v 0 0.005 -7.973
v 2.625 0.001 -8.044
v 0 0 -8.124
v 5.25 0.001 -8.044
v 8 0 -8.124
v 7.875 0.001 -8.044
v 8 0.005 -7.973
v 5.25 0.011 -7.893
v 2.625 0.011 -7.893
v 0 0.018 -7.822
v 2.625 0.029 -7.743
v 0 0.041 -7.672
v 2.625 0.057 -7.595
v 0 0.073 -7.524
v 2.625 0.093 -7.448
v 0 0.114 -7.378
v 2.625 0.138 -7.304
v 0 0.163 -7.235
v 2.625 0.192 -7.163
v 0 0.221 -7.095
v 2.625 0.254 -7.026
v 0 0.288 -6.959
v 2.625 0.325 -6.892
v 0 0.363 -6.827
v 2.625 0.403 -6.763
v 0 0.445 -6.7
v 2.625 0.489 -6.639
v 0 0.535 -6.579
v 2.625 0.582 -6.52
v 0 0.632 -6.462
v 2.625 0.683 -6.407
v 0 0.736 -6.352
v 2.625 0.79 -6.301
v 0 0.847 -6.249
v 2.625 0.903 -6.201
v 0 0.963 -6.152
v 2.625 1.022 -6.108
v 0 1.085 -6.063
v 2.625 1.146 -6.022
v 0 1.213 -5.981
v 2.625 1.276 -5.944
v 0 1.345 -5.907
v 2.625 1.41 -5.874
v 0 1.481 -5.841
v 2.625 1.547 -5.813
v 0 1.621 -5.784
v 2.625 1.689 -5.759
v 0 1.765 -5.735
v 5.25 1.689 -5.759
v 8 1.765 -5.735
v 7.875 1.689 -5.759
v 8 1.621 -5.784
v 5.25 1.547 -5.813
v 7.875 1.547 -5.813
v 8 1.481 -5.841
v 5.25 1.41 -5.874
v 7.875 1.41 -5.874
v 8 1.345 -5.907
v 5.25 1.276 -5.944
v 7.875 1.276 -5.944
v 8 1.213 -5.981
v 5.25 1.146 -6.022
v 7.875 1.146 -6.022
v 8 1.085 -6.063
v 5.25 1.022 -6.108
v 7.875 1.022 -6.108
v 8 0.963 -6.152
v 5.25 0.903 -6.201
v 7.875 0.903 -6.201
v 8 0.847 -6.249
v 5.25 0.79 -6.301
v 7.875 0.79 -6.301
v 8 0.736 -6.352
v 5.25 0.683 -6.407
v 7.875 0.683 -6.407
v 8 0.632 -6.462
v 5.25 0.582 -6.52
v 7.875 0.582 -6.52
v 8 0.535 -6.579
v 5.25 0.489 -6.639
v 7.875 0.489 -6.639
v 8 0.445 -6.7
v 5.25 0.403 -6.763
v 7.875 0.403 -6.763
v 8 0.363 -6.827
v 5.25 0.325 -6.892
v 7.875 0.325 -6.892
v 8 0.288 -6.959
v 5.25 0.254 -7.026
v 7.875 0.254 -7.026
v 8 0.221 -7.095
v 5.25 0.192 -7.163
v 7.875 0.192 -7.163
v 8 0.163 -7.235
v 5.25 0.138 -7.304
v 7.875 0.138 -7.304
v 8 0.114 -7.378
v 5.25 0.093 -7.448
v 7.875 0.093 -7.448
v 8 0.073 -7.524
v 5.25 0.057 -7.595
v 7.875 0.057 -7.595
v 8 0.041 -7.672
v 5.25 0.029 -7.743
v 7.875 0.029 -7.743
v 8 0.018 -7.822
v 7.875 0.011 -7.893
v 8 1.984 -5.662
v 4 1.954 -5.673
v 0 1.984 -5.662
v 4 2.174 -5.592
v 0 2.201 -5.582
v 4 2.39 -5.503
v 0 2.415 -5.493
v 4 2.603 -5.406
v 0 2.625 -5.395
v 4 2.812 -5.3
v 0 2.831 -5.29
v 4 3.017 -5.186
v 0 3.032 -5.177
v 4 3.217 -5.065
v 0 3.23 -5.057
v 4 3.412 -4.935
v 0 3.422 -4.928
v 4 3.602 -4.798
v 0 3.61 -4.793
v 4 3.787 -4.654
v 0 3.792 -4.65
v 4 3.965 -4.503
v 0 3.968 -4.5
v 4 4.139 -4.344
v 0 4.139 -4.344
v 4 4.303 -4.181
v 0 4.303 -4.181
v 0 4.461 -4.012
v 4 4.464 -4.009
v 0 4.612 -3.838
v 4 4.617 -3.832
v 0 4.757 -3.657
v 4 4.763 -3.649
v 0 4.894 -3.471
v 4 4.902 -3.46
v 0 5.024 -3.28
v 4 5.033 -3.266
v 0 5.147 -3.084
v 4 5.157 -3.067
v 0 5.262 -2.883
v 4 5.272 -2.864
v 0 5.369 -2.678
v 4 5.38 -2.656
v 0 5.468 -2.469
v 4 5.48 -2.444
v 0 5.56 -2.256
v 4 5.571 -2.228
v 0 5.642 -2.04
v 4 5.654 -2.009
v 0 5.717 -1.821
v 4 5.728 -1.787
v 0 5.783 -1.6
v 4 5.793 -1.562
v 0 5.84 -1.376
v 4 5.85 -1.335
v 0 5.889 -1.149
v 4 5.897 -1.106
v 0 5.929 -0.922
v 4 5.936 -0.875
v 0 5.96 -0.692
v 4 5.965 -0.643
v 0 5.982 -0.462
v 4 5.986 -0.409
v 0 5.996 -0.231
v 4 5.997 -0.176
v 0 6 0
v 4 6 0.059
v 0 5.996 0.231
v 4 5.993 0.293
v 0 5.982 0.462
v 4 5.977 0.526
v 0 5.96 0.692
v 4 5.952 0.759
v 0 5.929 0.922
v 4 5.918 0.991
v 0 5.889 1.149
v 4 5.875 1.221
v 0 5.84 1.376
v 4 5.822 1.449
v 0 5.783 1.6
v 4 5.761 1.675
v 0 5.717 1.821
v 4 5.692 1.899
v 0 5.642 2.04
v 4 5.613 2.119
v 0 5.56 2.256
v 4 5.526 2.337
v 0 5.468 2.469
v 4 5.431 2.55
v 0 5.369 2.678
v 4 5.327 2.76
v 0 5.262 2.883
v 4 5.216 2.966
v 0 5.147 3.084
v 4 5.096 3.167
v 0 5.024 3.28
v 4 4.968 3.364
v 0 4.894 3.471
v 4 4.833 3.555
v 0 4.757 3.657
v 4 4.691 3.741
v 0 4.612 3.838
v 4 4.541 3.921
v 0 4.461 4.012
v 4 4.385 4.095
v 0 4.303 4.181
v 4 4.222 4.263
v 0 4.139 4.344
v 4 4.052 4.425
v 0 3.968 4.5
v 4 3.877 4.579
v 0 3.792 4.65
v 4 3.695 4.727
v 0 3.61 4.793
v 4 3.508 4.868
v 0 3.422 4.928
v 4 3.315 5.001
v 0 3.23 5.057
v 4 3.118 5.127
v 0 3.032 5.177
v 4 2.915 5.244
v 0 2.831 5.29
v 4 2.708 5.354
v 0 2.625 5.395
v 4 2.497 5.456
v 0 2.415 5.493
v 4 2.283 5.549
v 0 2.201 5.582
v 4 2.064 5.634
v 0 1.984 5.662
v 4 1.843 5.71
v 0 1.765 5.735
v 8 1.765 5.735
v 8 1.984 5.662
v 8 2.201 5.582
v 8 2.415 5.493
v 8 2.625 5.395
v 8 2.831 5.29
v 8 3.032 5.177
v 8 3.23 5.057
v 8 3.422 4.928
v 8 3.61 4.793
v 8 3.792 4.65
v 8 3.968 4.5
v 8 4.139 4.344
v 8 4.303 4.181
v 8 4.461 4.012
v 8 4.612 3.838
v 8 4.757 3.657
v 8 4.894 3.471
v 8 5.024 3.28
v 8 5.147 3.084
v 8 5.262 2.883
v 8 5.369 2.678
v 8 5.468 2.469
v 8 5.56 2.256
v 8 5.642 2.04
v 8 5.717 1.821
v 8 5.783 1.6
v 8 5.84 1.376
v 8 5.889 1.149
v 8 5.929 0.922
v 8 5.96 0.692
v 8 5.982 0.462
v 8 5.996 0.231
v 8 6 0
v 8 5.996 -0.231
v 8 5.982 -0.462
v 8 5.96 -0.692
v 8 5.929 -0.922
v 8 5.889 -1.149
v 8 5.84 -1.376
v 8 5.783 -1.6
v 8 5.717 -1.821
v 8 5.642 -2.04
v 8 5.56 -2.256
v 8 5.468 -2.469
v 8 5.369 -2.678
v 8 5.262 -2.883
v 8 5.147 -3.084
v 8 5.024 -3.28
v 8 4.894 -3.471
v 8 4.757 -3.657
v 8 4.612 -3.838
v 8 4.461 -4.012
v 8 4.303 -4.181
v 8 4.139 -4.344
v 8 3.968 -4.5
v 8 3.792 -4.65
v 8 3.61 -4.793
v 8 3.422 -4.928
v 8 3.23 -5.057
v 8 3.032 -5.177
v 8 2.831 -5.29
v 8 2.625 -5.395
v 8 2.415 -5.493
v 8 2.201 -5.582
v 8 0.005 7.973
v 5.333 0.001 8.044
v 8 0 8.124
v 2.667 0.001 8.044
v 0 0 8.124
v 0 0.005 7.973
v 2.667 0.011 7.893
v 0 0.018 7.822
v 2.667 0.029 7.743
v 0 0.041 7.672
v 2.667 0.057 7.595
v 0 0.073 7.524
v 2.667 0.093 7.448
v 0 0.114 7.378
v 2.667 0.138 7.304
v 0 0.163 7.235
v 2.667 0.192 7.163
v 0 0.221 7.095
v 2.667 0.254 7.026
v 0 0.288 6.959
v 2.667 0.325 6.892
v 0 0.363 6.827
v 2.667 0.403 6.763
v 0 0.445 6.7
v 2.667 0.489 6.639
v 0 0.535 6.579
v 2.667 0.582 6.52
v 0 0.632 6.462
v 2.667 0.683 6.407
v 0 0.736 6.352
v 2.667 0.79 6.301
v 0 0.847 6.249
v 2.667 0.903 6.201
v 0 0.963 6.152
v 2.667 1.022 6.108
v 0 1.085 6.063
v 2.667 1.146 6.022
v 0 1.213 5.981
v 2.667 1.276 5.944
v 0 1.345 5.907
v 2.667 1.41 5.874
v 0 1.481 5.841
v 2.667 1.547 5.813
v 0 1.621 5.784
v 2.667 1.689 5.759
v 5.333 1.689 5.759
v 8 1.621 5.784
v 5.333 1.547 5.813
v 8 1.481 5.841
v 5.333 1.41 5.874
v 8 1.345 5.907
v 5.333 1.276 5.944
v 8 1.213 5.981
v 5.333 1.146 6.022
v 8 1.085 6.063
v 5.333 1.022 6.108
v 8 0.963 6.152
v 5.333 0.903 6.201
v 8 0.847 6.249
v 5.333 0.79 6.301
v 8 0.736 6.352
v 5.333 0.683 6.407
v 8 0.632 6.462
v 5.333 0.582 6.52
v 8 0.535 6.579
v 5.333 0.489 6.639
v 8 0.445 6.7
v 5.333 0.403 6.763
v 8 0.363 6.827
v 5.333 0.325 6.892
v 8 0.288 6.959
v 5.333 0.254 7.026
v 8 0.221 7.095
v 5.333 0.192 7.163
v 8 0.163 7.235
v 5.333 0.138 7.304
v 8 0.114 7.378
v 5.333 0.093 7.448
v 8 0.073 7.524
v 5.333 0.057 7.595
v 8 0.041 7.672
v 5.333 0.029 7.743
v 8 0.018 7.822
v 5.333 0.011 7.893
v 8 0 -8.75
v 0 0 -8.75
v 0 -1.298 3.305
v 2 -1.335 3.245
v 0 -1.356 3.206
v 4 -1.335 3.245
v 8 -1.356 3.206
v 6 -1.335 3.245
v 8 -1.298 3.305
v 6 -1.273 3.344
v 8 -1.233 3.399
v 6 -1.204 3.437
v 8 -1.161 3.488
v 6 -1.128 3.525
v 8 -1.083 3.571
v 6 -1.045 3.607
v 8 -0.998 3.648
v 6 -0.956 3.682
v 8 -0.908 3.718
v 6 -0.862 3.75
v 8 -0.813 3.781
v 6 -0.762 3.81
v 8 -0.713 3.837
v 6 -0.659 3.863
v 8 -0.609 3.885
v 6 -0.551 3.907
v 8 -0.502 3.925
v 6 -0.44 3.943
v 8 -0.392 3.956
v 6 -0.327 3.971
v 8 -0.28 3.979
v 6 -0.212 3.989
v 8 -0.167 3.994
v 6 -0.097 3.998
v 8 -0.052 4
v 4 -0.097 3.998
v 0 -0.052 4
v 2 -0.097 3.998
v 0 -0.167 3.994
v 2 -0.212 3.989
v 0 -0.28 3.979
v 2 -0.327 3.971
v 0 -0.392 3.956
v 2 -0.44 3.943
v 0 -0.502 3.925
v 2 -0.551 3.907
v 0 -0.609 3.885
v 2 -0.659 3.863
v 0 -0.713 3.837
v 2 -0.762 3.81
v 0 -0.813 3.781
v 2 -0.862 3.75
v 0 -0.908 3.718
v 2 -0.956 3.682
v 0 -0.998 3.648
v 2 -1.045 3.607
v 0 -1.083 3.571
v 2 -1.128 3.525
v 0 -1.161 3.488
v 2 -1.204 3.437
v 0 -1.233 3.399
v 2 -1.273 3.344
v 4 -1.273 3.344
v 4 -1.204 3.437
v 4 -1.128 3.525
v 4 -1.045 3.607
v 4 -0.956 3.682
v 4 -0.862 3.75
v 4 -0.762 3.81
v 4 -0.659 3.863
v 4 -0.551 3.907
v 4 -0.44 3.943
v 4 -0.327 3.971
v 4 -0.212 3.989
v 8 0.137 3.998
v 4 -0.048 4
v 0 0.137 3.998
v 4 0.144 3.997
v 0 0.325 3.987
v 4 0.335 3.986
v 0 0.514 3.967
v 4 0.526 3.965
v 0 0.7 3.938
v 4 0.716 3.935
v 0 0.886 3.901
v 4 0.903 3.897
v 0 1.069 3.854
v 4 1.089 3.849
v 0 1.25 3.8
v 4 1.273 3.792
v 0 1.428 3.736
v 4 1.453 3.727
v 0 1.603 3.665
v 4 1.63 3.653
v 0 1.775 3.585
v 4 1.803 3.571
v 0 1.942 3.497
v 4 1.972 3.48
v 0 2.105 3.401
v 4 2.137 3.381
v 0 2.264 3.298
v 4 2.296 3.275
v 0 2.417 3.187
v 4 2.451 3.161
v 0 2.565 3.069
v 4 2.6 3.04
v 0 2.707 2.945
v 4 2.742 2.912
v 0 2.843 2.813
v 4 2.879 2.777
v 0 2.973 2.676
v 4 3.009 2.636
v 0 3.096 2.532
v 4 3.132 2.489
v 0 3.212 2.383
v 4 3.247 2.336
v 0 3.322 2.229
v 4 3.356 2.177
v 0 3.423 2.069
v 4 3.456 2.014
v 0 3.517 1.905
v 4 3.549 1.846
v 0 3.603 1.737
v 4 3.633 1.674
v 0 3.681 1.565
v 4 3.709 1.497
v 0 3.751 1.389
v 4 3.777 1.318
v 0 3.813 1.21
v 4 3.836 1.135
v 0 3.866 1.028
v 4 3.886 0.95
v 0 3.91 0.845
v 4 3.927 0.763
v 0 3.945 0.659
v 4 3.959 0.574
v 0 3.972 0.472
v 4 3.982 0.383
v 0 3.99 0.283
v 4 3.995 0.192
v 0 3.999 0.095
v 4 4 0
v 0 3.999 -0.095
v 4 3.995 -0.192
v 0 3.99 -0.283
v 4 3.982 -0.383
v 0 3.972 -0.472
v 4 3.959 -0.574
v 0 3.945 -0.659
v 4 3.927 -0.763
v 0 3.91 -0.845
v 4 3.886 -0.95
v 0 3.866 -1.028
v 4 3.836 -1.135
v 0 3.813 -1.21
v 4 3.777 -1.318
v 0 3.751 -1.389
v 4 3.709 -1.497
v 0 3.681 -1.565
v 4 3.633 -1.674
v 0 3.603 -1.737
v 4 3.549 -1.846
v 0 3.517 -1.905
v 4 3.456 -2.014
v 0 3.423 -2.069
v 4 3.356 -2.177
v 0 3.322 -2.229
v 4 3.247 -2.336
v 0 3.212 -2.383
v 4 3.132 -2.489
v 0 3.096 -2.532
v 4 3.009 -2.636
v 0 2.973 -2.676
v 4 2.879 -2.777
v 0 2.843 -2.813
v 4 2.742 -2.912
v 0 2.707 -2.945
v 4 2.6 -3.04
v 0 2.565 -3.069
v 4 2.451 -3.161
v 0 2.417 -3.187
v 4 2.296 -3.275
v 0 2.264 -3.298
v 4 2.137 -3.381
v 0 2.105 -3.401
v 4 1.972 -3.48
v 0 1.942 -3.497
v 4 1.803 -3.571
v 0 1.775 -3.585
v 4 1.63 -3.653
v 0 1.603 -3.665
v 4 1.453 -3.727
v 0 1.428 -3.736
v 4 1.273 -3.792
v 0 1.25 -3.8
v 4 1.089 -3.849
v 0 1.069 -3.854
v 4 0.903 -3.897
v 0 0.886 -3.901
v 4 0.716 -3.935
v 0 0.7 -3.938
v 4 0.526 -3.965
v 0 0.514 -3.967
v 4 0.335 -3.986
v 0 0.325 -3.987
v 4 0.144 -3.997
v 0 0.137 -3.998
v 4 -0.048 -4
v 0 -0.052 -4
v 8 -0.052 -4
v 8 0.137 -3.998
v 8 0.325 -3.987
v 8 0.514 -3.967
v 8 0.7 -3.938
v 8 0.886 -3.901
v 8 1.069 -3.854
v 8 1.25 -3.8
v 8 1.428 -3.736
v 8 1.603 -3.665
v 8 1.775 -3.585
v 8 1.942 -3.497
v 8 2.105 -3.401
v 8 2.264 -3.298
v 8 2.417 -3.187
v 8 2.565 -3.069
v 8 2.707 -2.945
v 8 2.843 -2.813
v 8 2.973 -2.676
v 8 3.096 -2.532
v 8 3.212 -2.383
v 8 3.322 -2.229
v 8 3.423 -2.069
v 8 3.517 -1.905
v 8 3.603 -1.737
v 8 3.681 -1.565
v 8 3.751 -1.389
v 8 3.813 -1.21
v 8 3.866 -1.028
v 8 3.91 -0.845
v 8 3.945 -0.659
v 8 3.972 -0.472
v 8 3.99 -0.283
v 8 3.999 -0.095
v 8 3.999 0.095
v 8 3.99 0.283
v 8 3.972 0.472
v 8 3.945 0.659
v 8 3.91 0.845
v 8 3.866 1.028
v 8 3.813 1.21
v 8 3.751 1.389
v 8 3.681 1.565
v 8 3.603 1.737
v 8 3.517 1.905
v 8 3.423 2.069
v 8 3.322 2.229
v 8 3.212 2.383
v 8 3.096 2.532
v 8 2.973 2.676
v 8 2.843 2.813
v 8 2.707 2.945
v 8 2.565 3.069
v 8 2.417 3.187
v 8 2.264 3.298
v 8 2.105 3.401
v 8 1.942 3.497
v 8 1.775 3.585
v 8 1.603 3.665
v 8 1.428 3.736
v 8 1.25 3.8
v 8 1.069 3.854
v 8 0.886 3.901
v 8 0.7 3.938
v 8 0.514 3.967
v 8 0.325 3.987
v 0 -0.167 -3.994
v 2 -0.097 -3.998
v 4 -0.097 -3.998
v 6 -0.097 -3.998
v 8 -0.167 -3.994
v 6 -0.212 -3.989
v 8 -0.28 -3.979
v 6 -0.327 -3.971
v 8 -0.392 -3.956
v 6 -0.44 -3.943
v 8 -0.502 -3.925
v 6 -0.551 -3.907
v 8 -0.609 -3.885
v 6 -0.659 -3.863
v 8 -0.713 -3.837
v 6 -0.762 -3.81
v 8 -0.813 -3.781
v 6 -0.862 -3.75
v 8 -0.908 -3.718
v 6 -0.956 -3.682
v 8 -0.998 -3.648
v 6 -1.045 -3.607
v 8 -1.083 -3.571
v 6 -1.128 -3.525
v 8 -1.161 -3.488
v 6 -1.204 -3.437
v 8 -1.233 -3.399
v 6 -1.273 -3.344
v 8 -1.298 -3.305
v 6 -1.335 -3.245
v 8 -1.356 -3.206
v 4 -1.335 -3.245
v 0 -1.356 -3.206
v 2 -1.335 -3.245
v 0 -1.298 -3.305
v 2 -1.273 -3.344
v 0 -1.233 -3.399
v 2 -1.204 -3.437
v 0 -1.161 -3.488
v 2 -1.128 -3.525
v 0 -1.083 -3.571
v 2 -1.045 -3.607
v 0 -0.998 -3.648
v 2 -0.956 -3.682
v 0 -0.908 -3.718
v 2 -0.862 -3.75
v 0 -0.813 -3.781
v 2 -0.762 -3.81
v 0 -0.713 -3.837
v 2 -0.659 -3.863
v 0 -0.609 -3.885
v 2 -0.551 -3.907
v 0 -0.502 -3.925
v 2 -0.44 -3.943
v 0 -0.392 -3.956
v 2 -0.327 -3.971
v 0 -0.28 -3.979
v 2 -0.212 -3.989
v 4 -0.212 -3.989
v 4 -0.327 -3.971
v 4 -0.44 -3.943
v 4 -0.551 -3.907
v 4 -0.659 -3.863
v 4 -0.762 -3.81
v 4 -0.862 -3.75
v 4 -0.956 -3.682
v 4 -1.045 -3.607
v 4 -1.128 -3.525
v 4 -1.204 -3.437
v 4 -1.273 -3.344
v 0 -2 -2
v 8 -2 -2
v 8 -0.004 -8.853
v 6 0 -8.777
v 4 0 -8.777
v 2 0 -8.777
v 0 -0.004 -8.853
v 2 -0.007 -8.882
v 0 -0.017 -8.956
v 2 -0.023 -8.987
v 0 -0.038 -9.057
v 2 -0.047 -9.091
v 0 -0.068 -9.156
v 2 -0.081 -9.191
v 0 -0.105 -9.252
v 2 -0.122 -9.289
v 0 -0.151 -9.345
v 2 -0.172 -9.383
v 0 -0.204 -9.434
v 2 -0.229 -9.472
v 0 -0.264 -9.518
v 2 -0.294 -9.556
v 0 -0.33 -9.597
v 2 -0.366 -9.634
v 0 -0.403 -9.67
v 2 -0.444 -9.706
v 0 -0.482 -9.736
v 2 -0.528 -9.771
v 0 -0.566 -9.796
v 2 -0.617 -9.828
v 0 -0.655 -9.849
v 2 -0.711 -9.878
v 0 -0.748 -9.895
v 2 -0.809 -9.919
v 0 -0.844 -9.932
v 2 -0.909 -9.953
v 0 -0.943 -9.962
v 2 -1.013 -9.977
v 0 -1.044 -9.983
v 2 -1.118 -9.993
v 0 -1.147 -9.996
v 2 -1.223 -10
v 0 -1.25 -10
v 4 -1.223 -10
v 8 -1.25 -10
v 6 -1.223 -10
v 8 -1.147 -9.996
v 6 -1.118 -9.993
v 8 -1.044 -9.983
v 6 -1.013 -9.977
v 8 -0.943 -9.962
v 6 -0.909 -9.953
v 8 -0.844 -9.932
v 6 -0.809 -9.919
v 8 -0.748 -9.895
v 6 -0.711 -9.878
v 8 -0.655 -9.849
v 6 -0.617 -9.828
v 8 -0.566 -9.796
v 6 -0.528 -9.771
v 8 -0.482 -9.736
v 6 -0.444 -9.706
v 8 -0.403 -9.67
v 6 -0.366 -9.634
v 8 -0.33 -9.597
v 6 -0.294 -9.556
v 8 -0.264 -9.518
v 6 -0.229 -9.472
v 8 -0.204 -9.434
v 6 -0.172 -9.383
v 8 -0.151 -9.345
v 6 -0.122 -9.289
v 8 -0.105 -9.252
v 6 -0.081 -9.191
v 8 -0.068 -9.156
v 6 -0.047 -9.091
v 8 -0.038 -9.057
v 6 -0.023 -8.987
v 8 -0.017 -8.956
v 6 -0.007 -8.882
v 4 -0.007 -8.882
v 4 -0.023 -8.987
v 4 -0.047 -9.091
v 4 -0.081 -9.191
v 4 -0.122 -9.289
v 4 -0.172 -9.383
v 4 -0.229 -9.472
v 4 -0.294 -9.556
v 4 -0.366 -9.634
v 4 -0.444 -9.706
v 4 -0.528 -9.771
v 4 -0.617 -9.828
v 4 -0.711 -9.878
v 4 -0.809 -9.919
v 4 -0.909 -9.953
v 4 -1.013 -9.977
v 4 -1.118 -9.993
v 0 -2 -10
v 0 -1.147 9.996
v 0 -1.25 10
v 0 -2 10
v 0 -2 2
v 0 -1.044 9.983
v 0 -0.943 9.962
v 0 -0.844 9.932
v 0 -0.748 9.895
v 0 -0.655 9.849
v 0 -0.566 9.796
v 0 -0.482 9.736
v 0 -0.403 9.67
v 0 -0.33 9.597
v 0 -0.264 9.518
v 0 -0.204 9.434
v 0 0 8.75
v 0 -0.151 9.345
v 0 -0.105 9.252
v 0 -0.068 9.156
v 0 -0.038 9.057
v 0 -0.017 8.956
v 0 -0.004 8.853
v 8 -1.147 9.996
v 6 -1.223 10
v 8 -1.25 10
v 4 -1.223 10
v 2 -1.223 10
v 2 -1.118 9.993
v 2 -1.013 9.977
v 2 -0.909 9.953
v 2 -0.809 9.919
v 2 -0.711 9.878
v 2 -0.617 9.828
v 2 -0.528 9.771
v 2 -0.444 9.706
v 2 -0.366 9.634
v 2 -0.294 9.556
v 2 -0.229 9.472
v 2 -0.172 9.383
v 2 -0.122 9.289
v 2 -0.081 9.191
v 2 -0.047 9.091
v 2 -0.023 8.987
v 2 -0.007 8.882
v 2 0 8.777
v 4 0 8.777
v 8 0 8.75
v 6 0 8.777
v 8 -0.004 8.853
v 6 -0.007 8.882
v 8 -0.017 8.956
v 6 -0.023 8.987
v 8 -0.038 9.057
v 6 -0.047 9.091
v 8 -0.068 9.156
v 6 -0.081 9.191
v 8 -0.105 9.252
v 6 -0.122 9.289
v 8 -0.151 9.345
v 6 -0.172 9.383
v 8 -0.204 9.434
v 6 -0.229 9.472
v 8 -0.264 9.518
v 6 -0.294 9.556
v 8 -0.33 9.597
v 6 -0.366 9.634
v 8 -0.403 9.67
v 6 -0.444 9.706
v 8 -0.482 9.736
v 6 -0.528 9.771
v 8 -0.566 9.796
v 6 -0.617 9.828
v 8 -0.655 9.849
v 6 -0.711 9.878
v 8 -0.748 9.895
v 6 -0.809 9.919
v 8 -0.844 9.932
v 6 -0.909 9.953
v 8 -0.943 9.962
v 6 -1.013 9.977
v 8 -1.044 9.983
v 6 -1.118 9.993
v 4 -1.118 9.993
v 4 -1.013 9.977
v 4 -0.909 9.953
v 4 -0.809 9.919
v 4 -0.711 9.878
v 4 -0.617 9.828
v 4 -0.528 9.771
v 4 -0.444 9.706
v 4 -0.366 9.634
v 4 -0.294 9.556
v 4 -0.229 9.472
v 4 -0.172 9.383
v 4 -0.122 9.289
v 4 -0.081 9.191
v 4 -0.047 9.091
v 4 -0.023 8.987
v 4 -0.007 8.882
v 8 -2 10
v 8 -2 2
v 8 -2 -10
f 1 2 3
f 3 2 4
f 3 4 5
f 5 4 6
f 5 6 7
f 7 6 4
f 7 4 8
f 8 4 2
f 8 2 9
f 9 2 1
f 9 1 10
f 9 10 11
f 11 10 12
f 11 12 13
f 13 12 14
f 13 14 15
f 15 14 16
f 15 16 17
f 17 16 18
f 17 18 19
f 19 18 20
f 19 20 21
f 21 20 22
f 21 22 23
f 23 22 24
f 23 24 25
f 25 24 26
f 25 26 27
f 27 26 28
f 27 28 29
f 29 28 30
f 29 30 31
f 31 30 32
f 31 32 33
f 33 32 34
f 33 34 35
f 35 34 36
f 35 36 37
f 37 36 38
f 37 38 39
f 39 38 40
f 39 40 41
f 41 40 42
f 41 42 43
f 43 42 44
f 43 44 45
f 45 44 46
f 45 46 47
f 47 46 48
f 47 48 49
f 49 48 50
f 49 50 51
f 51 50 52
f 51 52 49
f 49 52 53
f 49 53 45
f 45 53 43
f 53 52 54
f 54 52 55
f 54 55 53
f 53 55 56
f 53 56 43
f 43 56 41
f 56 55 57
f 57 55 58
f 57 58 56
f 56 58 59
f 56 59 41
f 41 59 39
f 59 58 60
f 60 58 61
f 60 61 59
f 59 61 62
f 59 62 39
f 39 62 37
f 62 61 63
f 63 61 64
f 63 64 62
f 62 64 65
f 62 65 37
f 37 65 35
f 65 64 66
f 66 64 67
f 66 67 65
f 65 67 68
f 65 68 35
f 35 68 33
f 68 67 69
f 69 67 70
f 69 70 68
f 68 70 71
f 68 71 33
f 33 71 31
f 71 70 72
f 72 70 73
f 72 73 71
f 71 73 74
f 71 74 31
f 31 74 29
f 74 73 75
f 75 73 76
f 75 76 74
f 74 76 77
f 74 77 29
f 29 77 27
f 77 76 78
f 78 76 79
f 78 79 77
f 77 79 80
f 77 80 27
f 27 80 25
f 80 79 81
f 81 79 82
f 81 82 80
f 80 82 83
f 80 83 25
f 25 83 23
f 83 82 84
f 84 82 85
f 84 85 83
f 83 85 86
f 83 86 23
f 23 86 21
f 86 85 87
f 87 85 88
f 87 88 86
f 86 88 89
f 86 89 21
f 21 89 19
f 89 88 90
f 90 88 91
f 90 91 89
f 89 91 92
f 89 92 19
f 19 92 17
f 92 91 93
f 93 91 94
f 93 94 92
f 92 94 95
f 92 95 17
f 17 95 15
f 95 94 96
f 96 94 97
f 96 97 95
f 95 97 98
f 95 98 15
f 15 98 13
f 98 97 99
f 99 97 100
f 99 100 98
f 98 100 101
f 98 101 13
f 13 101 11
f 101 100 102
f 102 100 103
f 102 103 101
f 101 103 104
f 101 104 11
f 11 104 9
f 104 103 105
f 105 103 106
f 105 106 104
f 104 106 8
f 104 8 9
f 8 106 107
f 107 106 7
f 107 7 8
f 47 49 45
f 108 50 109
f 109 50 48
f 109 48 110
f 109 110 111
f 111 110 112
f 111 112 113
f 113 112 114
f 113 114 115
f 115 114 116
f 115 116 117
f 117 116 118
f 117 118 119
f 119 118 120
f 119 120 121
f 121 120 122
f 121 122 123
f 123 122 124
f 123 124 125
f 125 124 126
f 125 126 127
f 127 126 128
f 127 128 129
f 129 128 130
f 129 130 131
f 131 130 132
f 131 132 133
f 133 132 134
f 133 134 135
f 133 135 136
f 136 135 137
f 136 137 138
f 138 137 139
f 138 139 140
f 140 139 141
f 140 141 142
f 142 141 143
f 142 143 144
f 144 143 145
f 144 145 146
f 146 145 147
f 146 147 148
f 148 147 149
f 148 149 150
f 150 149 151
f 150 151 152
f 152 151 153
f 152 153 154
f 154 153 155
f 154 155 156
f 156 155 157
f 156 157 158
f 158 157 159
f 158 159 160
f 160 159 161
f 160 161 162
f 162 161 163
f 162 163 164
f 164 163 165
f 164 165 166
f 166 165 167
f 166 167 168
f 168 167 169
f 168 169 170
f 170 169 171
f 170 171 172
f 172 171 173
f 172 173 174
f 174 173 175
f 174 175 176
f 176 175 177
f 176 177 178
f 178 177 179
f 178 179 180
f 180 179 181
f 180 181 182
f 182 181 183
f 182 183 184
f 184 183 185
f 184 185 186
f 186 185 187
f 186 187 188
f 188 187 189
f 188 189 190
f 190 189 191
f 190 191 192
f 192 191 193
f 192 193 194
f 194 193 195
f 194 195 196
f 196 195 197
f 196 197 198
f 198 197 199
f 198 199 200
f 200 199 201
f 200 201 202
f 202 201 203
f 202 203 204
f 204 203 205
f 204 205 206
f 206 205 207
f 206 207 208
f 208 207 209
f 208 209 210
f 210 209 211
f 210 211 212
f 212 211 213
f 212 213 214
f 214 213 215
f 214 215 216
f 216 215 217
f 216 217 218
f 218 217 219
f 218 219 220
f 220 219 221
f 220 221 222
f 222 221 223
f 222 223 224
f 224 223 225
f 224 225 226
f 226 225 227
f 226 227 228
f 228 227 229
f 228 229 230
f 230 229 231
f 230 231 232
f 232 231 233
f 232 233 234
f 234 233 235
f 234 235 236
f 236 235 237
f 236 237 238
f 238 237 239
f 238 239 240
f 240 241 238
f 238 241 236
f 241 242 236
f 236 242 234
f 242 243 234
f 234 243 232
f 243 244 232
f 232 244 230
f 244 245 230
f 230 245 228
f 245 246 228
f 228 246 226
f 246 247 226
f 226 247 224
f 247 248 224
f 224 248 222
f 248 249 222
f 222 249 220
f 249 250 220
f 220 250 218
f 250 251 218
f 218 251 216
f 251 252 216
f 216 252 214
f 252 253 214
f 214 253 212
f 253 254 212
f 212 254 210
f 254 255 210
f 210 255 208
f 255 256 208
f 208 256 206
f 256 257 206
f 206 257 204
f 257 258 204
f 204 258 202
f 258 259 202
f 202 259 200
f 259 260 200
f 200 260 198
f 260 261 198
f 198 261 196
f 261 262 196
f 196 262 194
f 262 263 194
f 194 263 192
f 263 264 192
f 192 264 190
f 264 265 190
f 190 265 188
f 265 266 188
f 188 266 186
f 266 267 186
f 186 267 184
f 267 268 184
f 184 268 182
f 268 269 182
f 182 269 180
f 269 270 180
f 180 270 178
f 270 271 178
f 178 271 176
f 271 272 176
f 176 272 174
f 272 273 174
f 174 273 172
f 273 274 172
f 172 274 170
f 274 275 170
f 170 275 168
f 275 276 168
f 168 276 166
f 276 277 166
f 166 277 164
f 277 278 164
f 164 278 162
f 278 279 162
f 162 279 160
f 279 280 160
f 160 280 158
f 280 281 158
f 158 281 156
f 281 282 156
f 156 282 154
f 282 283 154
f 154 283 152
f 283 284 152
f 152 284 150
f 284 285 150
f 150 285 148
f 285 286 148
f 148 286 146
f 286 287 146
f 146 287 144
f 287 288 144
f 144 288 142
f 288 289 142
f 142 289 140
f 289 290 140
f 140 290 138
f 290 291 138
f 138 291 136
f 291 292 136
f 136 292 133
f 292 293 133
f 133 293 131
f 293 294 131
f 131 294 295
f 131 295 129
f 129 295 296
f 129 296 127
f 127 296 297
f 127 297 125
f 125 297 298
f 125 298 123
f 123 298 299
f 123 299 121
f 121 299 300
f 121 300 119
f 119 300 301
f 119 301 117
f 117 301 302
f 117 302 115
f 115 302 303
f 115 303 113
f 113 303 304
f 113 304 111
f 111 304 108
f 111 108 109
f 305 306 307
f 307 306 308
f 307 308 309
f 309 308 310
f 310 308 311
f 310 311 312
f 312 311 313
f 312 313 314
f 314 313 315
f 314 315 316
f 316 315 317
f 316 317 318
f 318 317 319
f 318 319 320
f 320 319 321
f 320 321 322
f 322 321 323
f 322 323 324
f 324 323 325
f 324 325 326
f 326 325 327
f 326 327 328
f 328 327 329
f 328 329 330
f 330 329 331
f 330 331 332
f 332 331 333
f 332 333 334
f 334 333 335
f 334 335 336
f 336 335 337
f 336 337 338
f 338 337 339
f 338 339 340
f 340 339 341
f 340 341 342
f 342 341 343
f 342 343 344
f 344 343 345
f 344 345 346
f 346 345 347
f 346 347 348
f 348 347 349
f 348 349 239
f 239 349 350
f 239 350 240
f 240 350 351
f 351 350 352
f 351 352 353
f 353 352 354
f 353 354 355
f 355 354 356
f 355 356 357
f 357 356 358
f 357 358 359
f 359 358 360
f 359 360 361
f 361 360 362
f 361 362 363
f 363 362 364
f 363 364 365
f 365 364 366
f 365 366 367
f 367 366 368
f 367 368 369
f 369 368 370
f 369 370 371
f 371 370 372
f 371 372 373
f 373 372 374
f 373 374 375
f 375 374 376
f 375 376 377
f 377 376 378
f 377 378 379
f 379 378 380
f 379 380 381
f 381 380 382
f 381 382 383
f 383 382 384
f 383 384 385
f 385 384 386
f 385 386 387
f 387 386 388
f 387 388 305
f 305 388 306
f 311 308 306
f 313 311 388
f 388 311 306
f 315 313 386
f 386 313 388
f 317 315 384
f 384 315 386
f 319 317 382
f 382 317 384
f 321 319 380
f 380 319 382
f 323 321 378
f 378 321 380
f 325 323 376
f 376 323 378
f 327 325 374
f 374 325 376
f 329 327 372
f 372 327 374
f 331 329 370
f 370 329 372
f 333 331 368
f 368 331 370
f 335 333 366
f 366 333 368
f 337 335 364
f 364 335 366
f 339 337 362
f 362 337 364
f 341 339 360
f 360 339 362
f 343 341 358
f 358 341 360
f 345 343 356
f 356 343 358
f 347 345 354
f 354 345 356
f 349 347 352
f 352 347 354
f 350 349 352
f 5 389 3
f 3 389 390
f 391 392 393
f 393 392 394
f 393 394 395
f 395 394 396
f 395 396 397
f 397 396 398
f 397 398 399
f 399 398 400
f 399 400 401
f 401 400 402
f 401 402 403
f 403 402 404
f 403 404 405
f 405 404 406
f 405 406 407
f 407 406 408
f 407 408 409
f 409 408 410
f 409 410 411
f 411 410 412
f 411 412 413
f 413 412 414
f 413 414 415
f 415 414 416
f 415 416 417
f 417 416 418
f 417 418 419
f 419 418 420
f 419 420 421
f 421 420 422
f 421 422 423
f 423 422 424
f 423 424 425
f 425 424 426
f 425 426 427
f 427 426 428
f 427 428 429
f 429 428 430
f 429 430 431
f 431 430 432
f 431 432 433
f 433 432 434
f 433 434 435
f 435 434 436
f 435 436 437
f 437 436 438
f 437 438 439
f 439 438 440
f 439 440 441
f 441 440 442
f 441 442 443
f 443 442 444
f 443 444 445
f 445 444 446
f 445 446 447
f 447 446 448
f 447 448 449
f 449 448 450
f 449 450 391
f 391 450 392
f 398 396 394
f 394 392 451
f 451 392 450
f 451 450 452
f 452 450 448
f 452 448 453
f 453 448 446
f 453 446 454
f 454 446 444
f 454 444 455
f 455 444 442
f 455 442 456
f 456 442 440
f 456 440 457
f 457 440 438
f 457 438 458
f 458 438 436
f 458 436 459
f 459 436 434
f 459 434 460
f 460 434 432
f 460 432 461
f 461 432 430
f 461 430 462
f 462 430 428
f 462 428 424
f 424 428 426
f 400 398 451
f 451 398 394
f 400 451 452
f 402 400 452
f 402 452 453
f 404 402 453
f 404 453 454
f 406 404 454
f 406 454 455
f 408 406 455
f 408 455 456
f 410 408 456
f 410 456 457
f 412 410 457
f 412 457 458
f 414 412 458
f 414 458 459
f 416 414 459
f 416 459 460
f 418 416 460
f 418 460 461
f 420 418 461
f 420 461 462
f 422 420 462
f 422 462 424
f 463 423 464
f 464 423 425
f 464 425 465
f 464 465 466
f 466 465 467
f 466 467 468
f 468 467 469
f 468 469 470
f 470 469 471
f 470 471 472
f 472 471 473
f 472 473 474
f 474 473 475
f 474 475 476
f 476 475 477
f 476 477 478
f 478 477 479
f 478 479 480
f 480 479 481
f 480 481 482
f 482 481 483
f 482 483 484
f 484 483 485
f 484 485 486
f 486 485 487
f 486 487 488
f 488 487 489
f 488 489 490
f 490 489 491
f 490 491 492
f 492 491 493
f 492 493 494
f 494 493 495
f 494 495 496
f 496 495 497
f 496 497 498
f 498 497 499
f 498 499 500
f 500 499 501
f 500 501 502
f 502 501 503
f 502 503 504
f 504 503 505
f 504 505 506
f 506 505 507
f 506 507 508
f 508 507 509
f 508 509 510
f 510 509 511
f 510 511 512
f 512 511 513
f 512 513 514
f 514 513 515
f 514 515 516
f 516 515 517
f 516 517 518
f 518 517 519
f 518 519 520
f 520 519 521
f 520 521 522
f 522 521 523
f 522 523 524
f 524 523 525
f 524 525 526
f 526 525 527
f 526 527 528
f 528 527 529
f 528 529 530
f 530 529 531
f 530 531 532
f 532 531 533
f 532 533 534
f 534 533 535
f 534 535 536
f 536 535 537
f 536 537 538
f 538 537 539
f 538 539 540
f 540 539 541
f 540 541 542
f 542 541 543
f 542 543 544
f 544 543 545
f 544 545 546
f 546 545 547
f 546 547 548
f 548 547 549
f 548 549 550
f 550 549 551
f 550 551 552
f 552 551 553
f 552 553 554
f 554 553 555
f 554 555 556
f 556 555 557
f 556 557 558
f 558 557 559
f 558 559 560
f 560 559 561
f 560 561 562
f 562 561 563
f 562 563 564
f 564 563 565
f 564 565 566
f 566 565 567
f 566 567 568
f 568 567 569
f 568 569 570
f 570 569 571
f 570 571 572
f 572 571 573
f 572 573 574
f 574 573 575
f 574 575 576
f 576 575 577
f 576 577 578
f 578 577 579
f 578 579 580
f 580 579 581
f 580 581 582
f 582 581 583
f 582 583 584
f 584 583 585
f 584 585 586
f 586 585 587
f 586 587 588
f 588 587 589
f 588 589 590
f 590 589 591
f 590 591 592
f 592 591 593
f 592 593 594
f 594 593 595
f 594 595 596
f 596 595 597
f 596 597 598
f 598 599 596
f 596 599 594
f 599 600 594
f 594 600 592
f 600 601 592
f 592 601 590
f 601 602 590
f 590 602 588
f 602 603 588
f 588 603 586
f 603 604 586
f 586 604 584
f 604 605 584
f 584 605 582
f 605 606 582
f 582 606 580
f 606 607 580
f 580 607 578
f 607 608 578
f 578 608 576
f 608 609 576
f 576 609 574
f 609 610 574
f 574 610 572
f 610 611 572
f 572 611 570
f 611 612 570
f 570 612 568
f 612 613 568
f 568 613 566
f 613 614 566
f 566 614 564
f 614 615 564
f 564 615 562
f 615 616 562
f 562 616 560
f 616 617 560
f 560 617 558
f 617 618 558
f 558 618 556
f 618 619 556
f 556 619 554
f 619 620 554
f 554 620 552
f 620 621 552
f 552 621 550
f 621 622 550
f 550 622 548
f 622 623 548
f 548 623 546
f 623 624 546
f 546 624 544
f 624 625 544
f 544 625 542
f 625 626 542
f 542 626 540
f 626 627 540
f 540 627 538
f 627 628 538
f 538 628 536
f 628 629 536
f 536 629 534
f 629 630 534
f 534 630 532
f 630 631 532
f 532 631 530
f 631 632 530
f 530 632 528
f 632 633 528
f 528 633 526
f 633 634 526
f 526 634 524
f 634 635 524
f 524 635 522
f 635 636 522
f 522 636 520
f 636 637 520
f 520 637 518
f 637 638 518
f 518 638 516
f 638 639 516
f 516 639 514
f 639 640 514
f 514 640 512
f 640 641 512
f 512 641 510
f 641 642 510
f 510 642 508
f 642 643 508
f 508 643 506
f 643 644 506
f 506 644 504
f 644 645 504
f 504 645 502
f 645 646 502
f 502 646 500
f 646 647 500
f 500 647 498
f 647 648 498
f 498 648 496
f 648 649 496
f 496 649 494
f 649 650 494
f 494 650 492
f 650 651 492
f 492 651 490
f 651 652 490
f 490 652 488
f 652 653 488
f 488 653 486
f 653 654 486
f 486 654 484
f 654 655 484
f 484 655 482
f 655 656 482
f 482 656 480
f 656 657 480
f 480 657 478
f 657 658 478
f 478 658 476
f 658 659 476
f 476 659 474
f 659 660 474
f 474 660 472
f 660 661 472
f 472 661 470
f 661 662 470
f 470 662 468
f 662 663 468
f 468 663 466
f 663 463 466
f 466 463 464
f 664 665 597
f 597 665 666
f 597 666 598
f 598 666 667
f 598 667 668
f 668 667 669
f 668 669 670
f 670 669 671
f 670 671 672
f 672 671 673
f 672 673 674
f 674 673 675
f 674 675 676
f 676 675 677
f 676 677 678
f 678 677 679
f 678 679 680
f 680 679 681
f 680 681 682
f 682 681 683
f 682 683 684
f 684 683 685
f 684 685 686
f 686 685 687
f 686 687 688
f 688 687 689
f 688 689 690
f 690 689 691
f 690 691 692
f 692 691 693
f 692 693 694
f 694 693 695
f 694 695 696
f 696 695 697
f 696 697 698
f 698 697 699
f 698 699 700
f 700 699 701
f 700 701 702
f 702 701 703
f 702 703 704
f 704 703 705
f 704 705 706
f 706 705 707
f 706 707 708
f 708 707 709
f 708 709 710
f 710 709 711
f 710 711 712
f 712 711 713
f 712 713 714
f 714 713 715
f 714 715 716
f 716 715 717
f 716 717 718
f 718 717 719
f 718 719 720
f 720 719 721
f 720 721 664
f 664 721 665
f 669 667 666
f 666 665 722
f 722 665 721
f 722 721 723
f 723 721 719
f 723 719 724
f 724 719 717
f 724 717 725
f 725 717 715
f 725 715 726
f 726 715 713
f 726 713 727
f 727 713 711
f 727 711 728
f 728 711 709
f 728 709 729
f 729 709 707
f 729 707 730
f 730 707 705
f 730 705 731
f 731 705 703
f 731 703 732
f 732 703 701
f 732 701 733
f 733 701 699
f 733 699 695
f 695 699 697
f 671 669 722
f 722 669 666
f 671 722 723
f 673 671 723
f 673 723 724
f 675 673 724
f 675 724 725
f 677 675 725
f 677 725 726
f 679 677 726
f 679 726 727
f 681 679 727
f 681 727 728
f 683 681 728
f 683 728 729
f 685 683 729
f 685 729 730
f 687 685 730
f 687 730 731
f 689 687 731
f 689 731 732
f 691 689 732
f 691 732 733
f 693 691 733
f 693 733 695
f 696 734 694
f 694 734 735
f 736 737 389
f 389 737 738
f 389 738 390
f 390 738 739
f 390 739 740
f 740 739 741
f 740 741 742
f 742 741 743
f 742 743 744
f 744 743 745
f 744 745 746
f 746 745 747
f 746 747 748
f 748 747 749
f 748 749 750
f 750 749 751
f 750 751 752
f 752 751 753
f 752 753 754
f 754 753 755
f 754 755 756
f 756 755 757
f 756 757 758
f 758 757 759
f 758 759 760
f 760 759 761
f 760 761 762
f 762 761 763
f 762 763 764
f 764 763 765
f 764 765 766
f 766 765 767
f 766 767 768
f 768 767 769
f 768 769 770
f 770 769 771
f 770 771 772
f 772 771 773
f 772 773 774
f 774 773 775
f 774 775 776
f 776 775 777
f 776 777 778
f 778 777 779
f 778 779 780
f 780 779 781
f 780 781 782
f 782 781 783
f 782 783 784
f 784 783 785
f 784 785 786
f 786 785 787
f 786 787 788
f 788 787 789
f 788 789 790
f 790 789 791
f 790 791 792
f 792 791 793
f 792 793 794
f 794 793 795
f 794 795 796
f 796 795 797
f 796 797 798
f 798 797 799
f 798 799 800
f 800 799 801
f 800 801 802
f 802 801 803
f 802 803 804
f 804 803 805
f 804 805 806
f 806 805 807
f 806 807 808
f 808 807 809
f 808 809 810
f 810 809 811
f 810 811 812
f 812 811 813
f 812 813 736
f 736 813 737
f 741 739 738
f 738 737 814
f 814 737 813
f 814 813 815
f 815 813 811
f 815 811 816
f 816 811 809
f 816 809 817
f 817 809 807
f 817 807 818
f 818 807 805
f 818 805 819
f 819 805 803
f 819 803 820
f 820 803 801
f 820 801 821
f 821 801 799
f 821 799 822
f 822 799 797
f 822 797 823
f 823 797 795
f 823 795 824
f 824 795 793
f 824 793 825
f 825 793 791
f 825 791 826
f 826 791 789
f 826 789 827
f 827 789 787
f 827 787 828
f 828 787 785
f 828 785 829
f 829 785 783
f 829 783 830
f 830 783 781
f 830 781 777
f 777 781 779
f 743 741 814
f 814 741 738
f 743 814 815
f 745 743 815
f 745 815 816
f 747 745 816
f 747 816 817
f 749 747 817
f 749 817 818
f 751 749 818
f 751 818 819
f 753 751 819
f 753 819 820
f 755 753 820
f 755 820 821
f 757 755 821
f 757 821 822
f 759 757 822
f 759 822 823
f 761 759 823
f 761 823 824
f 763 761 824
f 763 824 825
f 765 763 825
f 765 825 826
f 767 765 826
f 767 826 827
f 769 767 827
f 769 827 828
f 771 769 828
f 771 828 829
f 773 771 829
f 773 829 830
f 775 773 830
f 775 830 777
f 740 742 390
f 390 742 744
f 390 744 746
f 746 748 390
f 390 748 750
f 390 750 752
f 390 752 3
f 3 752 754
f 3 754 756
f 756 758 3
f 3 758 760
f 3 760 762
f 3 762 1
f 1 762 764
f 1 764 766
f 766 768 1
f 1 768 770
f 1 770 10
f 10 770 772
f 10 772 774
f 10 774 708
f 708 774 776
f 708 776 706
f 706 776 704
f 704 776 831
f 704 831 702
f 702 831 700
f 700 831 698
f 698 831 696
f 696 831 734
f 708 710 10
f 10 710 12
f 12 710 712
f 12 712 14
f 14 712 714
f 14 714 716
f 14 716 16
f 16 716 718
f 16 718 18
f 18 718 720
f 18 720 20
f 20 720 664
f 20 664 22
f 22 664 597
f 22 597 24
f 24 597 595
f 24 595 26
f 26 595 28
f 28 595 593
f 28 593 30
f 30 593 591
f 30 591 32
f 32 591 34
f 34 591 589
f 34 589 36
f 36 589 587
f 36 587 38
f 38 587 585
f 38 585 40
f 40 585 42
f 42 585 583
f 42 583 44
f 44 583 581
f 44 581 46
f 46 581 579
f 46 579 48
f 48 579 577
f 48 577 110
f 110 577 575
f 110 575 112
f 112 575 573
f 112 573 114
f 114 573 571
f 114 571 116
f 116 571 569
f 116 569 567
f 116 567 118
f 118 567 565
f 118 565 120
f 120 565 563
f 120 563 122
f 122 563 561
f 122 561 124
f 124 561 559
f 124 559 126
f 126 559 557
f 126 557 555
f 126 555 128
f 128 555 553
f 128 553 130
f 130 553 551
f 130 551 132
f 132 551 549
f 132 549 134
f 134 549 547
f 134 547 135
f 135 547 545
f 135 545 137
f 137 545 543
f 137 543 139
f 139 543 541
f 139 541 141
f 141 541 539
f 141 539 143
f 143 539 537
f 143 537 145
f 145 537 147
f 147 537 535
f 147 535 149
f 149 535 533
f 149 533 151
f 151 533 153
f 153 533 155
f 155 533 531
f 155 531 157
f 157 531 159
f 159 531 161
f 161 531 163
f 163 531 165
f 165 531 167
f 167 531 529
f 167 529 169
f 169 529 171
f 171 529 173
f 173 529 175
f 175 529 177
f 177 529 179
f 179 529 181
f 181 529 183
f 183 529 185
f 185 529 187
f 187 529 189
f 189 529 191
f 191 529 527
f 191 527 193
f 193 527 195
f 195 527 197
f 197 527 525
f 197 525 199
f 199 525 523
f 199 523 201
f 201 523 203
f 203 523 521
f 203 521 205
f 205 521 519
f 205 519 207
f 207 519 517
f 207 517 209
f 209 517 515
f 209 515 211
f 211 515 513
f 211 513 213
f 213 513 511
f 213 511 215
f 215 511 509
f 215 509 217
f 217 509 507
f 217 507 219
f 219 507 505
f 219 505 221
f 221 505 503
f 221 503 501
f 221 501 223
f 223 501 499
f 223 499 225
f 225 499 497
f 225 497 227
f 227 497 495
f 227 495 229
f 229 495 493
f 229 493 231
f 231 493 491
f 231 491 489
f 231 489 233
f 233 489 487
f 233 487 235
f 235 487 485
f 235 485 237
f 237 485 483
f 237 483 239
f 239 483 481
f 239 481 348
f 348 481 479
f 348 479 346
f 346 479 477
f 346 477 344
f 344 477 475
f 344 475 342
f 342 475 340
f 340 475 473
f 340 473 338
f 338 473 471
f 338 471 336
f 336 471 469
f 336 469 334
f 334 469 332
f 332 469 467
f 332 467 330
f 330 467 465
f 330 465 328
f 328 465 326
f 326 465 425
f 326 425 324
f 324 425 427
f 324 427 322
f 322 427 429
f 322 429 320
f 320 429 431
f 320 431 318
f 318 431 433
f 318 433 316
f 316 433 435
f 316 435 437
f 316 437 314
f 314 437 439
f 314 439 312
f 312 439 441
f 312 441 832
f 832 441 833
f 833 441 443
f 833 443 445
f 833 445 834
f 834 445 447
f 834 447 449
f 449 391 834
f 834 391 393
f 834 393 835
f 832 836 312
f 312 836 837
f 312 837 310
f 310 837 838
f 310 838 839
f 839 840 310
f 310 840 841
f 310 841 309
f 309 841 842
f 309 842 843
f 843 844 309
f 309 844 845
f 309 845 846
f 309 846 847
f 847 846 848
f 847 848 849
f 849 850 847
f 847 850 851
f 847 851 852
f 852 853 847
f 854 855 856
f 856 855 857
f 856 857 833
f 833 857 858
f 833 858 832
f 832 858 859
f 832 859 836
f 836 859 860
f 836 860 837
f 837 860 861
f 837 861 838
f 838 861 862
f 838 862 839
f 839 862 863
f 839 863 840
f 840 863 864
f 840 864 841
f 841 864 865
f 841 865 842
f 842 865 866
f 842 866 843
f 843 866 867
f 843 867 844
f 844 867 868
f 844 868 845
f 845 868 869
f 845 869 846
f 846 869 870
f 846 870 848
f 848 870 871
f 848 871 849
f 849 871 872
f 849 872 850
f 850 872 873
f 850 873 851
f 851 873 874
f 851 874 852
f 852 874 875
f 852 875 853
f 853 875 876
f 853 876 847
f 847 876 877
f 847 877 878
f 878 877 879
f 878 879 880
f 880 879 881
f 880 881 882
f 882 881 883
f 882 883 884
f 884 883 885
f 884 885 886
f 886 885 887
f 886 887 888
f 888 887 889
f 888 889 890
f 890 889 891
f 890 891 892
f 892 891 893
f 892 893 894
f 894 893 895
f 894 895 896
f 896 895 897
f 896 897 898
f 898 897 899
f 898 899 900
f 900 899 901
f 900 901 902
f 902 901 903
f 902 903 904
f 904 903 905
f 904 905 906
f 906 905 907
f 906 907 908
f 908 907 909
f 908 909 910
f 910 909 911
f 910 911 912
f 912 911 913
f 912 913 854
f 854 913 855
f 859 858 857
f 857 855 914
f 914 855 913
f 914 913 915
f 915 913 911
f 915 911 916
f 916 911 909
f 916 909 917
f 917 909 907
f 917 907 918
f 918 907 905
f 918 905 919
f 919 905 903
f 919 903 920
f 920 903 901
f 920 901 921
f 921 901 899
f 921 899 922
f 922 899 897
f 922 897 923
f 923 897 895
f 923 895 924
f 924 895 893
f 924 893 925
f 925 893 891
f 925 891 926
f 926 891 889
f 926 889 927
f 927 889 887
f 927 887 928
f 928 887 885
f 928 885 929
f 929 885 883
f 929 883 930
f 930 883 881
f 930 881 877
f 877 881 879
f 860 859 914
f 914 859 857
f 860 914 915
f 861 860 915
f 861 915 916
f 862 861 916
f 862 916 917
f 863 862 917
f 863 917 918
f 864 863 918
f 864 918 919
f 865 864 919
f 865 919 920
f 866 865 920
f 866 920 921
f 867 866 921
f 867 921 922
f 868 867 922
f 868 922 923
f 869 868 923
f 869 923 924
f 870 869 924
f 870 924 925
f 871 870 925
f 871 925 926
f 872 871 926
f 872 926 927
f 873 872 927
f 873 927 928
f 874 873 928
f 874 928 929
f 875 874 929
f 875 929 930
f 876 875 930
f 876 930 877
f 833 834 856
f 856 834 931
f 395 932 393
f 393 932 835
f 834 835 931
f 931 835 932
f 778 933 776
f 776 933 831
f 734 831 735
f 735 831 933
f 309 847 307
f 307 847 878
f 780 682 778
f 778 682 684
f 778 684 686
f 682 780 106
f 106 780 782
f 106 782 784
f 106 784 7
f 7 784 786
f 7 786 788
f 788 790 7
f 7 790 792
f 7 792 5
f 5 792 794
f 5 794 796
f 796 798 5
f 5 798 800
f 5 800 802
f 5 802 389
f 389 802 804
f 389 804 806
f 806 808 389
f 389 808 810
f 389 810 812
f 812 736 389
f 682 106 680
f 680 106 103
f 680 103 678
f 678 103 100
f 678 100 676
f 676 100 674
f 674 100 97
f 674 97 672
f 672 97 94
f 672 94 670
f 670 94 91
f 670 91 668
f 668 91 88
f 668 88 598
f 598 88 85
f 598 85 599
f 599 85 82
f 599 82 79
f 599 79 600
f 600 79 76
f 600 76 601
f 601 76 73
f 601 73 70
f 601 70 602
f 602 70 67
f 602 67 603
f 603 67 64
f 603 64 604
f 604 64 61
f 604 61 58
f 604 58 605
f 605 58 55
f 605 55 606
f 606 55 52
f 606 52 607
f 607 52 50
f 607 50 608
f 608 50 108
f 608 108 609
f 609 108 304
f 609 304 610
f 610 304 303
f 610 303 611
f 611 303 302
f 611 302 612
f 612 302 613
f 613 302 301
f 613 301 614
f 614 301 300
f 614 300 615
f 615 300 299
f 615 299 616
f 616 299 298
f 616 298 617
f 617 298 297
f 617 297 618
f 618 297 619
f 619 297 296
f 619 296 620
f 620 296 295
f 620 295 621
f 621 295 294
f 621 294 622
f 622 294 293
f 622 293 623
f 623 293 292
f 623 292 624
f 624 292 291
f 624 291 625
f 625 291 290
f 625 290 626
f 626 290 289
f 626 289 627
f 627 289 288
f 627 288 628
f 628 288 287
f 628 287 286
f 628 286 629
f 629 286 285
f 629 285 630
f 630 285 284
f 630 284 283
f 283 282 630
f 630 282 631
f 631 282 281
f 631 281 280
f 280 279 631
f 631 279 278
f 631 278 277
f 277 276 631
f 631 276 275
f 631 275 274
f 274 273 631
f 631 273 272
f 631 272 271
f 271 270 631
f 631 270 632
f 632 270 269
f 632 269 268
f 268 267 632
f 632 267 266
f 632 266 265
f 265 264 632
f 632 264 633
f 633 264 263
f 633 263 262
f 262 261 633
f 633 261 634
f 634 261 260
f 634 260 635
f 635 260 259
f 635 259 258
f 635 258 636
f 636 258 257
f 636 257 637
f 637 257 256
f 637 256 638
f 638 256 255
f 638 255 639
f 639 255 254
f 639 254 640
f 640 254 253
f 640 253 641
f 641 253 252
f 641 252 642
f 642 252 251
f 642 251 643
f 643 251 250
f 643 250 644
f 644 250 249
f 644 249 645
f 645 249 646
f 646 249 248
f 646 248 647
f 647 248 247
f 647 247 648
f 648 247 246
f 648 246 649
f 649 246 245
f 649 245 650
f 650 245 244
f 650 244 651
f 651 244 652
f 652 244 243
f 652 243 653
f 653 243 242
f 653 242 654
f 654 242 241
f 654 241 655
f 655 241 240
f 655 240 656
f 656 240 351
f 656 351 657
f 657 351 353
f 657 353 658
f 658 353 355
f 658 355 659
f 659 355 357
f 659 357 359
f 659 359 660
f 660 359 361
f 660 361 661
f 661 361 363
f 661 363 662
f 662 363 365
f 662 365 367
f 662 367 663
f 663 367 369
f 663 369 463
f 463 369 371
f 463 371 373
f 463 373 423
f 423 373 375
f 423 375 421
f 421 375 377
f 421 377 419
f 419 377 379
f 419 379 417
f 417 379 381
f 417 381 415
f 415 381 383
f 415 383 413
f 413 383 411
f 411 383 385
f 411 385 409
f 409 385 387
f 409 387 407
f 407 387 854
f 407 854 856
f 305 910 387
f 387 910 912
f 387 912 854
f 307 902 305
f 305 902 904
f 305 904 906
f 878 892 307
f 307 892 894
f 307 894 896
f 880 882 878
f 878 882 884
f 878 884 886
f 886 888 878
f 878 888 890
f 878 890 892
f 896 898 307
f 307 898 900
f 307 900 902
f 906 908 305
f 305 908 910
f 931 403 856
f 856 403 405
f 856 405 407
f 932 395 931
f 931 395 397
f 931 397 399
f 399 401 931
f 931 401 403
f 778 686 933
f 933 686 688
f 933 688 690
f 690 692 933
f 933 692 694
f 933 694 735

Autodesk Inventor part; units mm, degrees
ref_plane "YZ Plane" through (0, 0, 0) normal (1, 0, 0) x (0, 1, 0)
ref_plane "XZ Plane" through (0, 0, 0) normal (0, 1, 0) x (-1, 0, 0)
ref_plane "XY Plane" through (0, 0, 0) normal (0, 0, 1) x (1, 0, 0)
sketch "Эскиз1" plane through (0, 0, 0) normal (1, 0, 0) x (0, 1, 0)
  circle A0 centre (0, 0) radius 4
  circle A1 centre (0, 0) radius 5
  line L0 (0, 5) -> (-2, 5)
  line L1 (-2, 5) -> (-2, 10)
  line L2 (-2, 10) -> (0, 10)
  line L3 (0, 10) -> (0, 5)
  line L4 (0, -5) -> (-2, -5)
  line L5 (-2, -5) -> (-2, -10)
  line L6 (-2, -10) -> (0, -10)
  line L7 (0, -10) -> (0, -5)
  line L8 (-2, 5) -> (-2, -5)
  line L9 (0, 5) -> (-2, 4.5826)
  line L10 (-2, -4.5826) -> (0, -5)
  line L11 (-2, 2) -> (-1, 3.873)
  line L12 (-2, -2) -> (-1, -3.873)
  line L13 (-1, -3.873) -> (-2, -3.873)
  line L14 (-1, 3.873) -> (-2, 3.873)
  dimension "d0" = 8
  dimension "d1" = 10
  dimension "d2" = 3
  dimension "d3" = 3
extrude "Выдавливание1" add sketch "Эскиз1" along normal blind 8 contours A0 L14 L8 L9 A1 L10 L13 | L11 L8 A0 | A0 L8 L14 | L13 L8 A0 | A0 L8 L12 | L8 L0 A1 | A1 L9 | L10 A1 | A1 L4 L8 | L0 L1 L2 L3 | L7 L6 L5 L4
fillet "Сопряжение2" radius 1.25 2 edges at (4, 0, 10) (4, 0, -10)
fillet "Сопряжение3" radius 1.5 2 edges at (4, -1, -3.873) (4, -1, 3.873)
sketch "Эскиз5" plane through (8, 0, 0) normal (1, 0, 0) x (0, 0, -1)
  circle A0 centre (0, 0) radius 5
  circle A1 centre (0, 0) radius 6
  line L0 (-5, 0) -> (-8.75, 0) projected
  line L1 (-6, 0) -> (-5, 0)
  arc A2 (5, 0) -> (-5, 0) centre (0, 0) ccw projected
  line L2 (-5, 0) -> (5, 0)
  line L3 (8.75, 0) -> (5, 0) projected
  line L4 (6, 0) -> (5, 0)
  dimension "d28" = 12
extrude "Выдавливание5" add sketch "Эскиз5" against normal blind 8 contours A0 L0 A1 L3 picked at (-5.5601, 0.8775)
fillet "Сопряжение4" radius 2.5 2 edges at (4, 0, 6) (4, 0, -6)
properties part number "binding links"
